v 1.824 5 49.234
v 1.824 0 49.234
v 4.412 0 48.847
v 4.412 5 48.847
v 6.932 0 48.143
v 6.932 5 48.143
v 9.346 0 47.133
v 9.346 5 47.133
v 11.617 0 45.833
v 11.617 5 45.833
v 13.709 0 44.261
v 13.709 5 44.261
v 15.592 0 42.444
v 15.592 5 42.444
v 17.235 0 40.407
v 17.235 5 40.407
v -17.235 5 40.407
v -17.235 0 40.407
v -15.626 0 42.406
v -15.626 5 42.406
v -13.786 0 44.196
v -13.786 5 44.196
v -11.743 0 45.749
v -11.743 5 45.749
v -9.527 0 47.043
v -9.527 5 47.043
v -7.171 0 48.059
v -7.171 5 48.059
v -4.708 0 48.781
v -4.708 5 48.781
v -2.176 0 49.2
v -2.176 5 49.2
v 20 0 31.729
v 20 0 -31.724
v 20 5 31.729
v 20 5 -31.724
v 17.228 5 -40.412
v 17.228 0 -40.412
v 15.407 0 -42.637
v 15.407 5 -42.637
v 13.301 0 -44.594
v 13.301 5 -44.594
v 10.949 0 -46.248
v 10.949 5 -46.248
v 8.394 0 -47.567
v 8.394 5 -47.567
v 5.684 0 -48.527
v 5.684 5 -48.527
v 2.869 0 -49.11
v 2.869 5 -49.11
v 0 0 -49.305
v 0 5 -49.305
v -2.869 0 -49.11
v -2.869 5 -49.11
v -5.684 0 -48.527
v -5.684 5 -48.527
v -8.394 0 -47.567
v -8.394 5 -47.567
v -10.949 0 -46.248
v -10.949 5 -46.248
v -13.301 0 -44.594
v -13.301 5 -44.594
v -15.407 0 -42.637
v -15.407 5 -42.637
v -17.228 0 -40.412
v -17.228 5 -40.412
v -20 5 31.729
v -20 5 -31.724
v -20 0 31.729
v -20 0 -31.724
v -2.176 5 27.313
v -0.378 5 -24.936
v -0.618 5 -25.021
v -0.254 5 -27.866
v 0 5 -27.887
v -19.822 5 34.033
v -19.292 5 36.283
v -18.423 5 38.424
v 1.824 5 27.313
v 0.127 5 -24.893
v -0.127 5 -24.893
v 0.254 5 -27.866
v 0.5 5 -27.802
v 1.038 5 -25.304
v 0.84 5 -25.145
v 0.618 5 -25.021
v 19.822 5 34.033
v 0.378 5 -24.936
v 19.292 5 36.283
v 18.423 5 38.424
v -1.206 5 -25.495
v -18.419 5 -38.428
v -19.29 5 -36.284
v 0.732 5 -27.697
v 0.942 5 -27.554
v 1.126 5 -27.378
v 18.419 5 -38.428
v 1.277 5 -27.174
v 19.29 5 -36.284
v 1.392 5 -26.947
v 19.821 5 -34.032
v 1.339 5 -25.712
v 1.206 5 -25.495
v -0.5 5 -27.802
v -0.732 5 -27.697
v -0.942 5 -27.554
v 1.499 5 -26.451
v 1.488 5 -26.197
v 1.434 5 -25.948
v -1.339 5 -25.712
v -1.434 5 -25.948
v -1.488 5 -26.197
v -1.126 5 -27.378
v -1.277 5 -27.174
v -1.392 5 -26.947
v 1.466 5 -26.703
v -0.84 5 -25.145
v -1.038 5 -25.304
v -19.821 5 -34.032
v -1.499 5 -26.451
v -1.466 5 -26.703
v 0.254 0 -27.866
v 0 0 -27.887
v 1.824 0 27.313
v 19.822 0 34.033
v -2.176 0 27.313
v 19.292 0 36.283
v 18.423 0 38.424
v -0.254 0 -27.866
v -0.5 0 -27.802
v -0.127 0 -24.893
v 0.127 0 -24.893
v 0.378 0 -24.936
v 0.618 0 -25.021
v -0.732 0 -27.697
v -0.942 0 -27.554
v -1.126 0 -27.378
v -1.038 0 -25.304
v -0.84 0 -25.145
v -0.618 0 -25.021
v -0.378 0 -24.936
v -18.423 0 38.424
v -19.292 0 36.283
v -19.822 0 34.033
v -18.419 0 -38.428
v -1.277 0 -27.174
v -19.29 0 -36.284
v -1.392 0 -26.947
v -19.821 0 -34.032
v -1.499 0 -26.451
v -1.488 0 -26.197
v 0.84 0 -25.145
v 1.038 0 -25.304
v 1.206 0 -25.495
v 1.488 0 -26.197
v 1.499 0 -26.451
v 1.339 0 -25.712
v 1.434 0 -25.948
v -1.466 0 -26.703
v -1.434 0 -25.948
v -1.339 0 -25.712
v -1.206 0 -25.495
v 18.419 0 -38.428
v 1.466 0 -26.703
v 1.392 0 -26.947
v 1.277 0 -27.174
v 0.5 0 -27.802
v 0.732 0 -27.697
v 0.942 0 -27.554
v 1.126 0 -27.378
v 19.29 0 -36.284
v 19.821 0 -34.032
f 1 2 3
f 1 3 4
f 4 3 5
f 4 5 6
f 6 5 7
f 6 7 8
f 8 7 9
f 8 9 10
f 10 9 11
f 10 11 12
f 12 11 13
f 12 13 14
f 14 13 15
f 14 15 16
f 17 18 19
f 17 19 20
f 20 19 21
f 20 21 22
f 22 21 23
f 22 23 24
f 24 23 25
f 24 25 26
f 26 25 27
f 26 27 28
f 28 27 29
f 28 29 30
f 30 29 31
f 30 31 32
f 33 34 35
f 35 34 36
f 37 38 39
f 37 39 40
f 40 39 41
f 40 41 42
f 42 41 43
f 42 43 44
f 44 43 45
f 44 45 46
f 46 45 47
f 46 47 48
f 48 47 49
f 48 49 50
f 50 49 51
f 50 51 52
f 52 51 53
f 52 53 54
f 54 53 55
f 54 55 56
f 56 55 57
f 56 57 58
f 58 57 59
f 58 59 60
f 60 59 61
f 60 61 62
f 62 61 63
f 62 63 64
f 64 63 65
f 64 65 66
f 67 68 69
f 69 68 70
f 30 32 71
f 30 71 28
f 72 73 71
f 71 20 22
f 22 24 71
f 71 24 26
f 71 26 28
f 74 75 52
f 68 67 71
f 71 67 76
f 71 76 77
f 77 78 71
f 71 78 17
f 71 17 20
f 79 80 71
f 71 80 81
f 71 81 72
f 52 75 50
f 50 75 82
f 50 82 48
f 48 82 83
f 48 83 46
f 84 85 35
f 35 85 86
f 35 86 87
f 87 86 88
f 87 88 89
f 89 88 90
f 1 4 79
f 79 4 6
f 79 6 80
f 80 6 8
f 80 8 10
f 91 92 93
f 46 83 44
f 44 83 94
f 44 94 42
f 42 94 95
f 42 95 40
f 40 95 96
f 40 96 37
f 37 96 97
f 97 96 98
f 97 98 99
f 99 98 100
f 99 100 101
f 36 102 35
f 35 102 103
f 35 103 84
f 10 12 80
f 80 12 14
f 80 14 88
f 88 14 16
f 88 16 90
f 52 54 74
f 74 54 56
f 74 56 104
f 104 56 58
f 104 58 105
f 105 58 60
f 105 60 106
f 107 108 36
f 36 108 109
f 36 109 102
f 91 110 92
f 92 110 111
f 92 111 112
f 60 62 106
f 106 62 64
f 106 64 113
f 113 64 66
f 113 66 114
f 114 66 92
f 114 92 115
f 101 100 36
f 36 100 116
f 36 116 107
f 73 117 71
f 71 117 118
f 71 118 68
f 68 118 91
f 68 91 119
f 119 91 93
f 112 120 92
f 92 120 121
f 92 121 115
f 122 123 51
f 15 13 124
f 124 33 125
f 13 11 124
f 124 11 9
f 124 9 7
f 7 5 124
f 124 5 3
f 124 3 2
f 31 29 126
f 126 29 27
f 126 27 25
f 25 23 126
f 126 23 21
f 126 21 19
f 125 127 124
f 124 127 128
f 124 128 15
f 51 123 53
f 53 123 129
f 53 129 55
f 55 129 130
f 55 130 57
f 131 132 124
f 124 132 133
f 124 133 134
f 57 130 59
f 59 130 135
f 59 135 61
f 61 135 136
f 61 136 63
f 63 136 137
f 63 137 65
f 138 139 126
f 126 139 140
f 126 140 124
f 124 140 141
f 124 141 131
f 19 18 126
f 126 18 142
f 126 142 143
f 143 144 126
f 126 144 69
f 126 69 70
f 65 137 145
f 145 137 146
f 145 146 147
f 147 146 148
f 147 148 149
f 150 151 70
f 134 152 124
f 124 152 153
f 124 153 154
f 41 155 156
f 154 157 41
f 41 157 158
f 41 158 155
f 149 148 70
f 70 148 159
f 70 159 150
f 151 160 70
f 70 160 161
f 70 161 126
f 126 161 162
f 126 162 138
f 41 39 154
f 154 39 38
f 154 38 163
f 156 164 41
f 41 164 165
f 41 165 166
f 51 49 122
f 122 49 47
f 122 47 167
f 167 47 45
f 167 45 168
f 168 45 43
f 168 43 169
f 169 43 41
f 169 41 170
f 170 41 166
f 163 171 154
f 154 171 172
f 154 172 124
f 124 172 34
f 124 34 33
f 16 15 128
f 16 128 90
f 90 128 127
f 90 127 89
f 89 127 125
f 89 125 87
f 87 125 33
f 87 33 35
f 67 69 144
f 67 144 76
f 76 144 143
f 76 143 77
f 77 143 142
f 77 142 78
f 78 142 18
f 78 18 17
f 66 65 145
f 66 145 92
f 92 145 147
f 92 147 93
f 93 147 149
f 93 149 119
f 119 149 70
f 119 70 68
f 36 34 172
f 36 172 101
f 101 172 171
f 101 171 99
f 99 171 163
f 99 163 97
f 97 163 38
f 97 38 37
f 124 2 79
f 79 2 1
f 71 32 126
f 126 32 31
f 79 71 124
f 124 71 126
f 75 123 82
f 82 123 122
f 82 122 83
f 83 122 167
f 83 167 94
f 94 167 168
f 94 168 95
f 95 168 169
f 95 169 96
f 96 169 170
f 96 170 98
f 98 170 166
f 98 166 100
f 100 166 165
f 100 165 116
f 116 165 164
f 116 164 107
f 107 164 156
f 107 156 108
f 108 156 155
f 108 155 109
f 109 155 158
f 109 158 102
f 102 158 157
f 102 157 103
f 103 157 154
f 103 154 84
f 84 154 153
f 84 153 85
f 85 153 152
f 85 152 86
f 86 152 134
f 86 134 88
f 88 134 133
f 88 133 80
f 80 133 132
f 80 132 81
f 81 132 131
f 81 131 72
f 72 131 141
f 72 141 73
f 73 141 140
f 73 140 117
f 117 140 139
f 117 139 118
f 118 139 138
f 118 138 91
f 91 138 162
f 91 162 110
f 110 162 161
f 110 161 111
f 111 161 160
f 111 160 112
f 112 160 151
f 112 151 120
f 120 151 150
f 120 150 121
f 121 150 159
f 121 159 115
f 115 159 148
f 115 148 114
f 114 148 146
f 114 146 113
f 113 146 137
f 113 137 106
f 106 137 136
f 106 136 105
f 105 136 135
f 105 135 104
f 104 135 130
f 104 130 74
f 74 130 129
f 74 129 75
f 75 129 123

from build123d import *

# Parameters (mm, degrees)
SKETCH2_W           = 40
SKETCH2_H           = 70
BOSS_EXTRUDE1_DEPTH = 5
FILLET1_R           = 15
CUT_EXTRUDE1_DEPTH  = 6
SKETCH4_R           = 1.5
CUT_EXTRUDE2_DEPTH  = 6


with BuildPart() as part:
    # Sketch2 → Boss-Extrude1 (new body)
    with BuildSketch(Plane(origin=(0, 0, 0), x_dir=(1, 0, 0), z_dir=(0, 1, 0))):
        with BuildLine():
            Line((-20, -35), (20, -35))
            ThreePointArc((20, -35), (0, -49.312603136), (-20, -35))
        make_face()
        Rectangle(SKETCH2_W, SKETCH2_H)
        with BuildLine():
            ThreePointArc((-20, 35), (0, 49.305454963), (20, 35))
            Line((20, 35), (-20, 35))
        make_face()
    extrude(amount=BOSS_EXTRUDE1_DEPTH)

    # Fillet1
    fillet1_edges = [part.edges().sort_by_distance(p)[0] for p in [
        (-20, 2.5, 35),
        (-20, 2.5, -35),
        (20, 2.5, -35),
        (20, 2.5, 35),
    ]]
    fillet(fillet1_edges, radius=FILLET1_R)

    # Sketch3 → Cut-Extrude1 (cut, through all)
    with BuildSketch(Plane.XZ):
        Polygon((0, 49.312603136), (1.823748233, 49.312603136), (1.823748233, 27.312603136), (-2.176251767, 27.312603136), (-2.176251767, 49.312603136), align=None)
    extrude(amount=-CUT_EXTRUDE1_DEPTH, mode=Mode.SUBTRACT)

    # Sketch4 → Cut-Extrude2 (cut, through all)
    with BuildSketch(Plane.XZ):
        with Locations((0, -26.387396864)):
            Circle(SKETCH4_R)
    extrude(amount=-CUT_EXTRUDE2_DEPTH, mode=Mode.SUBTRACT)


solid = part.part
